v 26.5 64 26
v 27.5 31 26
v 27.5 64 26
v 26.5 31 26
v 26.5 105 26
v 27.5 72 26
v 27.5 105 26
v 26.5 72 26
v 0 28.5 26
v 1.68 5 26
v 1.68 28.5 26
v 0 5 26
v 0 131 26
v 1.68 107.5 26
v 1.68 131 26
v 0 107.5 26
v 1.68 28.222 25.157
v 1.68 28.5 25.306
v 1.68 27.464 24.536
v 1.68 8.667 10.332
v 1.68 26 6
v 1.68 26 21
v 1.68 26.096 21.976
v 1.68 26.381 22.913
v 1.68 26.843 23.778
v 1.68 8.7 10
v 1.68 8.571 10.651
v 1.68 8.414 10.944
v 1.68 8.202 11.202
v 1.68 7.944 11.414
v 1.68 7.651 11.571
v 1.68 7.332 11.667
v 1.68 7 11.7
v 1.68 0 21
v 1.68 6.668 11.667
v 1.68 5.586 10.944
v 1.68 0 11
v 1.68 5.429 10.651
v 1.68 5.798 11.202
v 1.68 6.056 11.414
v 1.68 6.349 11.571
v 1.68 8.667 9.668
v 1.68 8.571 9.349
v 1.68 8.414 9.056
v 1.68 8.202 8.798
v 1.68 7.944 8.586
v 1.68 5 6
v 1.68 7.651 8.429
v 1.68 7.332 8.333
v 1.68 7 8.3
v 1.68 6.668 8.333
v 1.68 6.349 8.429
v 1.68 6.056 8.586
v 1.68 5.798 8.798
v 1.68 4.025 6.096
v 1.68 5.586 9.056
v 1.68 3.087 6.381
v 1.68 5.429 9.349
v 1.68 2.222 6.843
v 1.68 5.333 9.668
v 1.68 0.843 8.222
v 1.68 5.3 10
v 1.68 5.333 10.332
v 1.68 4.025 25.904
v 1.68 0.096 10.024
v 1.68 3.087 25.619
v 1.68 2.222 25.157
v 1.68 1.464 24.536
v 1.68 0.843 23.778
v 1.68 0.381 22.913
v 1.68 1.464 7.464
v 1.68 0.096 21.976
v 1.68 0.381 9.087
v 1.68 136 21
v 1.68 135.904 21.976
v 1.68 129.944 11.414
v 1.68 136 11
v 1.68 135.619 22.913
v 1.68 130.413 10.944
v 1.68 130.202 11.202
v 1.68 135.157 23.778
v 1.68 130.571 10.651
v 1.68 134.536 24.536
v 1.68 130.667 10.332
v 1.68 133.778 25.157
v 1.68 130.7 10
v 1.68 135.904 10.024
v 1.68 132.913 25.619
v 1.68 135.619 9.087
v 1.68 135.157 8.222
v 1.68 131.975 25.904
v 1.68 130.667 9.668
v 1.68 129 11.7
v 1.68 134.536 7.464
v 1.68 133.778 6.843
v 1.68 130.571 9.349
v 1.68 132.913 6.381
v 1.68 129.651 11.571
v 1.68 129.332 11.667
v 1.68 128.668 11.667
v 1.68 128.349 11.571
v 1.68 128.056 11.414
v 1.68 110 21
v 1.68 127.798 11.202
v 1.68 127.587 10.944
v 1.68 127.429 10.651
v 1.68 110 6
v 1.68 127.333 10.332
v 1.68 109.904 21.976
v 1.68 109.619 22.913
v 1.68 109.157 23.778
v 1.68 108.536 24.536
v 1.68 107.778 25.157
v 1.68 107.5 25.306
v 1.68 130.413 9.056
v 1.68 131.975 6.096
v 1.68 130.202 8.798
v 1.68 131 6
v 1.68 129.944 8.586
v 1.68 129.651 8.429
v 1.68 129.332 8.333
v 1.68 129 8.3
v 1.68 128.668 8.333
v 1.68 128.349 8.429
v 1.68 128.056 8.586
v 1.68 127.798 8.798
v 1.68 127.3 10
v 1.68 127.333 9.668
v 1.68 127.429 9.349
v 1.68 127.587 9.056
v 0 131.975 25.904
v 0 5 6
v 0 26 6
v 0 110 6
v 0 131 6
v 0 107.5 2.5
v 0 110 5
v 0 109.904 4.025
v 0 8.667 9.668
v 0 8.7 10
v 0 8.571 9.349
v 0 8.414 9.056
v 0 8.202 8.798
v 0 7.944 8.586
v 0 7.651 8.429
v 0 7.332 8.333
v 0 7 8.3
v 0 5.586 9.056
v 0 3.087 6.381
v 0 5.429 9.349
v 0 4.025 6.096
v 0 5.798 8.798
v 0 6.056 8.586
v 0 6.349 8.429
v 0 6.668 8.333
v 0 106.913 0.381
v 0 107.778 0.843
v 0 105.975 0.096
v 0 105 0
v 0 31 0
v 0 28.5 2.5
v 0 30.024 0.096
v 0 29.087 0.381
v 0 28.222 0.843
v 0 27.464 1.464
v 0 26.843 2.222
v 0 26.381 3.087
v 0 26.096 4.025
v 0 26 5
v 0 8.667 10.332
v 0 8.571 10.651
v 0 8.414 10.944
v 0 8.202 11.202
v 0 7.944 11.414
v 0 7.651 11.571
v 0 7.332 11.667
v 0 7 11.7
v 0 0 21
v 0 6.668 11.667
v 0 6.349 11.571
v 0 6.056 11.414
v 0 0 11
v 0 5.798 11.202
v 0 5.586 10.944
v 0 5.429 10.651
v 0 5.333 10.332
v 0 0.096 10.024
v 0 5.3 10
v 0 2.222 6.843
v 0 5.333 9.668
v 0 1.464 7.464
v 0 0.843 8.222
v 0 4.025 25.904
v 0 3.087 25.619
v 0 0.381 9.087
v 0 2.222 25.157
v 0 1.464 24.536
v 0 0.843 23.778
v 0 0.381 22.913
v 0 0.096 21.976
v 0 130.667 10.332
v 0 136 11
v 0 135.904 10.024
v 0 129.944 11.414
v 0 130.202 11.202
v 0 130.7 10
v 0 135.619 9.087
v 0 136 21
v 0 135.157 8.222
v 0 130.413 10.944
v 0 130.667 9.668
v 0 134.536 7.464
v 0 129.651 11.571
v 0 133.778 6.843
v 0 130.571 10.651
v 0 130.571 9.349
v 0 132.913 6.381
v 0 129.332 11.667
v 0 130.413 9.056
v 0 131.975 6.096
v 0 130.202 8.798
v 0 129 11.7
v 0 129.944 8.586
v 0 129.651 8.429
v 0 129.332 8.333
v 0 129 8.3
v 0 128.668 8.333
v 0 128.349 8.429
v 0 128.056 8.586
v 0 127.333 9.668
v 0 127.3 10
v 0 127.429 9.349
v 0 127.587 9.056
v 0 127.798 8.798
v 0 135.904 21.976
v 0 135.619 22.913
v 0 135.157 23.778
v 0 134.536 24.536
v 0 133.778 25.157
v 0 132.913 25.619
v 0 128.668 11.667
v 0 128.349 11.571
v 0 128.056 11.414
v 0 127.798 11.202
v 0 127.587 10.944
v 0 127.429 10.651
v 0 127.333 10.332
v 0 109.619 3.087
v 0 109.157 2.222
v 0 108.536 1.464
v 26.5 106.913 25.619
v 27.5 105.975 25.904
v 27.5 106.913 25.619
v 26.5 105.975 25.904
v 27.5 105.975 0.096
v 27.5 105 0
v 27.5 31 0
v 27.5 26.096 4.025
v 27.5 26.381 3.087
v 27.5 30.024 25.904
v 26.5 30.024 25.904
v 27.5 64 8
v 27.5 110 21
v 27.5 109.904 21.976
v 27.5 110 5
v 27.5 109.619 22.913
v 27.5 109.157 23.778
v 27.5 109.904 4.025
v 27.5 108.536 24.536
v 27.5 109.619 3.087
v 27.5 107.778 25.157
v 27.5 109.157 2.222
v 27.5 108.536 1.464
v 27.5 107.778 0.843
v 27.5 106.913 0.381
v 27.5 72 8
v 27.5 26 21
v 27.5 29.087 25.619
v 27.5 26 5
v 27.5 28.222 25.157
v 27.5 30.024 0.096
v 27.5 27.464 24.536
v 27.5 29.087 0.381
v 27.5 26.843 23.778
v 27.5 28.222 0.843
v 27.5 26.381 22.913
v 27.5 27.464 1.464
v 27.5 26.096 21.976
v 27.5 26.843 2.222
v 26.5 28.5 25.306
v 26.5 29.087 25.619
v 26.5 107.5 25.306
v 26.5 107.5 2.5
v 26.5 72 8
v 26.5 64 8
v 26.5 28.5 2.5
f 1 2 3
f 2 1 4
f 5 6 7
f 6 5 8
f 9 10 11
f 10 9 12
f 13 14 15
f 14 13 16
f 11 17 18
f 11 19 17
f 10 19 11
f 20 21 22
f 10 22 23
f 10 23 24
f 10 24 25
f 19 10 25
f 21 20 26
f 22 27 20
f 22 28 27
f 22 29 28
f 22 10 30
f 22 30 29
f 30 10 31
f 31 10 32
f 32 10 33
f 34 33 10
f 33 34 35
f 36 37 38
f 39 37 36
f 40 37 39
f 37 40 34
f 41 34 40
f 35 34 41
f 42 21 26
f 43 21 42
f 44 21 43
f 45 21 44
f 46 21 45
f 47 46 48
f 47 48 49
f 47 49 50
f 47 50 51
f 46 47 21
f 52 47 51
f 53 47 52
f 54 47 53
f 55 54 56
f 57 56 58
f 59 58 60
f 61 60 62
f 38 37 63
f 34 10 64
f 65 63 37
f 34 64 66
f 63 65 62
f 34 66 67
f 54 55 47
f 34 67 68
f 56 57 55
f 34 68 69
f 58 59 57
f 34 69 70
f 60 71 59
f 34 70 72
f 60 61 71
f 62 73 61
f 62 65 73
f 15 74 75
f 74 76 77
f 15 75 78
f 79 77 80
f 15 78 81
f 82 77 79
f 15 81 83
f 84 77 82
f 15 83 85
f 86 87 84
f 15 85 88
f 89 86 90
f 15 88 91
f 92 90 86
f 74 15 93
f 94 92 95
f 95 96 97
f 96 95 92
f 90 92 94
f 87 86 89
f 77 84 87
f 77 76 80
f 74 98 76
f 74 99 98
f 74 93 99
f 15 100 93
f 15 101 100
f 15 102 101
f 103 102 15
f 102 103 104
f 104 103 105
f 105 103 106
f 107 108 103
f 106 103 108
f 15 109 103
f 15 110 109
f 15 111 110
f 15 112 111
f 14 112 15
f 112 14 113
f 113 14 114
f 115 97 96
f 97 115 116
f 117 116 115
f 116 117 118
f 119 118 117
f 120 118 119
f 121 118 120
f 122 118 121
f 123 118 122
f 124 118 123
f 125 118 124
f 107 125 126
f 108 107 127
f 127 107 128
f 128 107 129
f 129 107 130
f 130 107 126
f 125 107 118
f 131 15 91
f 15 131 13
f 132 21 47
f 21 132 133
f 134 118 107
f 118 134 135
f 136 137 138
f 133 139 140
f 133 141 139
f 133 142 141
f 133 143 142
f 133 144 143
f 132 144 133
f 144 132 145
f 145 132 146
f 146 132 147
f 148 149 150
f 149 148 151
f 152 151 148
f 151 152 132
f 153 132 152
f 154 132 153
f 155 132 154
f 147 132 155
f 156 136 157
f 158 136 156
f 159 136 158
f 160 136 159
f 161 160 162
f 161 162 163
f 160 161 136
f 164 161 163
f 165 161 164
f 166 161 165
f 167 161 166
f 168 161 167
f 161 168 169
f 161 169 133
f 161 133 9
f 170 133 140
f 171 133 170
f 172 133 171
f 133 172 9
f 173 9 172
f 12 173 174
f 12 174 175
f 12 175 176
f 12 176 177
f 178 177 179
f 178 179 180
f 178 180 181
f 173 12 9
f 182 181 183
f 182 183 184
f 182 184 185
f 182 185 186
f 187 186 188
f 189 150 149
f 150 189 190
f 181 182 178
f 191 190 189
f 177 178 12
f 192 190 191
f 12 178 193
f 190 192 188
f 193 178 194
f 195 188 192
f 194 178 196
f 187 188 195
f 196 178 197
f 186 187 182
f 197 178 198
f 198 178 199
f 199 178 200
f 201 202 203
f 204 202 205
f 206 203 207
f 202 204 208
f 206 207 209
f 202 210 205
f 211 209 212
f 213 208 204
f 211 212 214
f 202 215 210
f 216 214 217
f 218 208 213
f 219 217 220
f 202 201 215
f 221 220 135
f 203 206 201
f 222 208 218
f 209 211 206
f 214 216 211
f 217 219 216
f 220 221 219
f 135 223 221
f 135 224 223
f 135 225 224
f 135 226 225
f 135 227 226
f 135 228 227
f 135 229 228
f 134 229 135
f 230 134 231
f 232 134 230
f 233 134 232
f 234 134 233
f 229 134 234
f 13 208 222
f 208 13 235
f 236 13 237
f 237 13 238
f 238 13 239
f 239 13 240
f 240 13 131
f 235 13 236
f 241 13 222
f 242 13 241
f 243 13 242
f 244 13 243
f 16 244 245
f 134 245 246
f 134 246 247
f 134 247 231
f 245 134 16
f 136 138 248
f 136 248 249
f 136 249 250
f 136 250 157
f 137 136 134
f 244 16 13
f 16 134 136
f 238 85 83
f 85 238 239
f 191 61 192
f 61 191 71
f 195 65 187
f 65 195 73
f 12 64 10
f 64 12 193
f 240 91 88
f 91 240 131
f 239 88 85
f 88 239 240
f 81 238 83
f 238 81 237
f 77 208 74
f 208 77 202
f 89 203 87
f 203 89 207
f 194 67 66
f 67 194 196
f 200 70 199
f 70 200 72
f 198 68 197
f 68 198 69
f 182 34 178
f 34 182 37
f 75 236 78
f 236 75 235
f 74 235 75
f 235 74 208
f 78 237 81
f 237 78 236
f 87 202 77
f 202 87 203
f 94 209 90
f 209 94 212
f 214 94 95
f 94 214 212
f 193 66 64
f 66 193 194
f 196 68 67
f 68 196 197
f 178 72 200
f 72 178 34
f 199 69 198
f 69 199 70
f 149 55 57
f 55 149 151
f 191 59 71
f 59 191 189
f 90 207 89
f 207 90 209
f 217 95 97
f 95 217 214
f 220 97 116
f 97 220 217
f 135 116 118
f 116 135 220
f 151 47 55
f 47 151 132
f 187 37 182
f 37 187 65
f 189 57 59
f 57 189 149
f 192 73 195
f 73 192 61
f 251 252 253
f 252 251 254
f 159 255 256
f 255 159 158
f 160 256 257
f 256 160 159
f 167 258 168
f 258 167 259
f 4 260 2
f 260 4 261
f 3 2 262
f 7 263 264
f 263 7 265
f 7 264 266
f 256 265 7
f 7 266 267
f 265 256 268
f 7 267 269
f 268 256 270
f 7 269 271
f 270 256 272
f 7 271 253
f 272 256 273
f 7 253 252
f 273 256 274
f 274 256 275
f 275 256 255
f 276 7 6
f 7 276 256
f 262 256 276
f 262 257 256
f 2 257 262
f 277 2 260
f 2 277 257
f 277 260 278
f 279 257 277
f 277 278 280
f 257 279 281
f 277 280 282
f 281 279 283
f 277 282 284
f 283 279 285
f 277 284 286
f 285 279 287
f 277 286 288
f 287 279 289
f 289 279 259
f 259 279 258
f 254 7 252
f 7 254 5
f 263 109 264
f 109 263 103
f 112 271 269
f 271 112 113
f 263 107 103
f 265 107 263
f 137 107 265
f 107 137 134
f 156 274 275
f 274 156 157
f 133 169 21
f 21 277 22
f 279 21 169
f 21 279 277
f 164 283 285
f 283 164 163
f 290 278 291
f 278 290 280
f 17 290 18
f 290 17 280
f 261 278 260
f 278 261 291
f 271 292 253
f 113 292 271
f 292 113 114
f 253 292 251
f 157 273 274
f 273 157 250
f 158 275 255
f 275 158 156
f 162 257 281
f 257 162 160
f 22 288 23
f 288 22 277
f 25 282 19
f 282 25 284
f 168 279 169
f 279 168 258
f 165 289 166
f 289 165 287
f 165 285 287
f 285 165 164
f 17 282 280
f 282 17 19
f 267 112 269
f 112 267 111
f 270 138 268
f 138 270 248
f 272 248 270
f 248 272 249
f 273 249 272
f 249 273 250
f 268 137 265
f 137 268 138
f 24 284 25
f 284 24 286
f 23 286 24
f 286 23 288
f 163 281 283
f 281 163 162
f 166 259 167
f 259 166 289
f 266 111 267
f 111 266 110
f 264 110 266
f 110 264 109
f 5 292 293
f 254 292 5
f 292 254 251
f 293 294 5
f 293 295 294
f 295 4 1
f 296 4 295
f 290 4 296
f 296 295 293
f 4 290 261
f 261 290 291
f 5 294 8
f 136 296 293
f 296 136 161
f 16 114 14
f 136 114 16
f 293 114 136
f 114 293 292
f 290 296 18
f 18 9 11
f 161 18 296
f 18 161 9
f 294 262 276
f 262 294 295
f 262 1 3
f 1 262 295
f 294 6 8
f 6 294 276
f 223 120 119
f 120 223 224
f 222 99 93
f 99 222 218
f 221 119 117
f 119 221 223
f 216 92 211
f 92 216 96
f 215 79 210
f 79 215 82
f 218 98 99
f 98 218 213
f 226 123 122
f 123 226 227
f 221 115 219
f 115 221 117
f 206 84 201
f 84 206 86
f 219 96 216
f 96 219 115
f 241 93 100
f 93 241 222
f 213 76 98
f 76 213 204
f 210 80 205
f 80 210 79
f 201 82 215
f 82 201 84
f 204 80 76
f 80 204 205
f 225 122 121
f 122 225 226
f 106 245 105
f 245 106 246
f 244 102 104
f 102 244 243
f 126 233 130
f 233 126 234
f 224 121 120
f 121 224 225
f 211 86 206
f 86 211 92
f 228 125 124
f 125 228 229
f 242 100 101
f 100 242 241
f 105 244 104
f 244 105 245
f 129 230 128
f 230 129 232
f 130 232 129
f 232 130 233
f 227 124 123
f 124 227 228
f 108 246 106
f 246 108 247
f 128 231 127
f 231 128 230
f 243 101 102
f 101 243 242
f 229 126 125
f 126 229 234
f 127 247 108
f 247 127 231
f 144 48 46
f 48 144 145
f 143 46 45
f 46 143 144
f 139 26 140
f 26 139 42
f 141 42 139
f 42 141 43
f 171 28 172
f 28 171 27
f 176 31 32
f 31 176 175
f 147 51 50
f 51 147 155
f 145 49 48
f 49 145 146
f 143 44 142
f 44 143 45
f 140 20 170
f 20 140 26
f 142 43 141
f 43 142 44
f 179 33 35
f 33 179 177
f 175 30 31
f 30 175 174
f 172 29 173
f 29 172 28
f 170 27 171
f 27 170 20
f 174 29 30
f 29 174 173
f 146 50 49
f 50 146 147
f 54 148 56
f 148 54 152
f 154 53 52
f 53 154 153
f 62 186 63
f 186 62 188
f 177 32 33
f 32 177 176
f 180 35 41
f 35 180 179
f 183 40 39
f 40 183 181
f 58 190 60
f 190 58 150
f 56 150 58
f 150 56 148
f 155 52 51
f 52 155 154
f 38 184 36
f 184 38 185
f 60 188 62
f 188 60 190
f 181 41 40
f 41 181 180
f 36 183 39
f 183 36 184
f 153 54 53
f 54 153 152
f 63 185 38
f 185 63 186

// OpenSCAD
union() // SharpSCAD generated scene: battery_holder
{
  { // module: single18650
    translate( v= [ 0, 0, 26 ] )
    {
      rotate( a= [ 0, 90, 0 ] )
      {
        difference()
        {
          translate( v= [ 5, 5, 0 ] )
          {
            union()
            {
              hull()
              {
                cylinder( r= 5, $fn= 32, h= 1.68 );
                translate( v= [ 0, 126, 0 ] )
                {
                  cylinder( r= 5, $fn= 32, h= 1.68 );
                }
                translate( v= [ 10, 0, 0 ] )
                {
                  cylinder( r= 5, $fn= 32, h= 1.68 );
                }
                translate( v= [ 10, 126, 0 ] )
                {
                  cylinder( r= 5, $fn= 32, h= 1.68 );
                }
              }
              resize( newsize= [ 0, 0, 27.5 ] )
              {
                hull()
                {
                  translate( v= [ 0, 26, 0 ] )
                  {
                    cylinder( r= 5, $fn= 32, h= 1.68 );
                  }
                  translate( v= [ 0, 100, 0 ] )
                  {
                    cylinder( r= 5, $fn= 32, h= 1.68 );
                  }
                  translate( v= [ 16, 26, 0 ] )
                  {
                    cylinder( r= 5, $fn= 32, h= 1.68 );
                  }
                  translate( v= [ 16, 100, 0 ] )
                  {
                    cylinder( r= 5, $fn= 32, h= 1.68 );
                  }
                }
              }
            }
          }
          translate( v= [ 11.5, 68, 12.5 ] )
          {
            cube( size= [ 24, 79, 28 ], center= true );
          }
          translate( v= [ 8, 68, 25 ] )
          {
            cube( size= [ 20, 8, 10 ], center= true );
          }
          translate( v= [ 0, 61, 0 ] )
          {
            translate( v= [ 16, 68, 0 ] )
            {
              cylinder( r= 1.7, center= true, $fn= 32, h= 5 );
            }
          }
          translate( v= [ 0, -61, 0 ] )
          {
            translate( v= [ 16, 68, 0 ] )
            {
              cylinder( r= 1.7, center= true, $fn= 32, h= 5 );
            }
          }
        }
      }
    }
  }
}
